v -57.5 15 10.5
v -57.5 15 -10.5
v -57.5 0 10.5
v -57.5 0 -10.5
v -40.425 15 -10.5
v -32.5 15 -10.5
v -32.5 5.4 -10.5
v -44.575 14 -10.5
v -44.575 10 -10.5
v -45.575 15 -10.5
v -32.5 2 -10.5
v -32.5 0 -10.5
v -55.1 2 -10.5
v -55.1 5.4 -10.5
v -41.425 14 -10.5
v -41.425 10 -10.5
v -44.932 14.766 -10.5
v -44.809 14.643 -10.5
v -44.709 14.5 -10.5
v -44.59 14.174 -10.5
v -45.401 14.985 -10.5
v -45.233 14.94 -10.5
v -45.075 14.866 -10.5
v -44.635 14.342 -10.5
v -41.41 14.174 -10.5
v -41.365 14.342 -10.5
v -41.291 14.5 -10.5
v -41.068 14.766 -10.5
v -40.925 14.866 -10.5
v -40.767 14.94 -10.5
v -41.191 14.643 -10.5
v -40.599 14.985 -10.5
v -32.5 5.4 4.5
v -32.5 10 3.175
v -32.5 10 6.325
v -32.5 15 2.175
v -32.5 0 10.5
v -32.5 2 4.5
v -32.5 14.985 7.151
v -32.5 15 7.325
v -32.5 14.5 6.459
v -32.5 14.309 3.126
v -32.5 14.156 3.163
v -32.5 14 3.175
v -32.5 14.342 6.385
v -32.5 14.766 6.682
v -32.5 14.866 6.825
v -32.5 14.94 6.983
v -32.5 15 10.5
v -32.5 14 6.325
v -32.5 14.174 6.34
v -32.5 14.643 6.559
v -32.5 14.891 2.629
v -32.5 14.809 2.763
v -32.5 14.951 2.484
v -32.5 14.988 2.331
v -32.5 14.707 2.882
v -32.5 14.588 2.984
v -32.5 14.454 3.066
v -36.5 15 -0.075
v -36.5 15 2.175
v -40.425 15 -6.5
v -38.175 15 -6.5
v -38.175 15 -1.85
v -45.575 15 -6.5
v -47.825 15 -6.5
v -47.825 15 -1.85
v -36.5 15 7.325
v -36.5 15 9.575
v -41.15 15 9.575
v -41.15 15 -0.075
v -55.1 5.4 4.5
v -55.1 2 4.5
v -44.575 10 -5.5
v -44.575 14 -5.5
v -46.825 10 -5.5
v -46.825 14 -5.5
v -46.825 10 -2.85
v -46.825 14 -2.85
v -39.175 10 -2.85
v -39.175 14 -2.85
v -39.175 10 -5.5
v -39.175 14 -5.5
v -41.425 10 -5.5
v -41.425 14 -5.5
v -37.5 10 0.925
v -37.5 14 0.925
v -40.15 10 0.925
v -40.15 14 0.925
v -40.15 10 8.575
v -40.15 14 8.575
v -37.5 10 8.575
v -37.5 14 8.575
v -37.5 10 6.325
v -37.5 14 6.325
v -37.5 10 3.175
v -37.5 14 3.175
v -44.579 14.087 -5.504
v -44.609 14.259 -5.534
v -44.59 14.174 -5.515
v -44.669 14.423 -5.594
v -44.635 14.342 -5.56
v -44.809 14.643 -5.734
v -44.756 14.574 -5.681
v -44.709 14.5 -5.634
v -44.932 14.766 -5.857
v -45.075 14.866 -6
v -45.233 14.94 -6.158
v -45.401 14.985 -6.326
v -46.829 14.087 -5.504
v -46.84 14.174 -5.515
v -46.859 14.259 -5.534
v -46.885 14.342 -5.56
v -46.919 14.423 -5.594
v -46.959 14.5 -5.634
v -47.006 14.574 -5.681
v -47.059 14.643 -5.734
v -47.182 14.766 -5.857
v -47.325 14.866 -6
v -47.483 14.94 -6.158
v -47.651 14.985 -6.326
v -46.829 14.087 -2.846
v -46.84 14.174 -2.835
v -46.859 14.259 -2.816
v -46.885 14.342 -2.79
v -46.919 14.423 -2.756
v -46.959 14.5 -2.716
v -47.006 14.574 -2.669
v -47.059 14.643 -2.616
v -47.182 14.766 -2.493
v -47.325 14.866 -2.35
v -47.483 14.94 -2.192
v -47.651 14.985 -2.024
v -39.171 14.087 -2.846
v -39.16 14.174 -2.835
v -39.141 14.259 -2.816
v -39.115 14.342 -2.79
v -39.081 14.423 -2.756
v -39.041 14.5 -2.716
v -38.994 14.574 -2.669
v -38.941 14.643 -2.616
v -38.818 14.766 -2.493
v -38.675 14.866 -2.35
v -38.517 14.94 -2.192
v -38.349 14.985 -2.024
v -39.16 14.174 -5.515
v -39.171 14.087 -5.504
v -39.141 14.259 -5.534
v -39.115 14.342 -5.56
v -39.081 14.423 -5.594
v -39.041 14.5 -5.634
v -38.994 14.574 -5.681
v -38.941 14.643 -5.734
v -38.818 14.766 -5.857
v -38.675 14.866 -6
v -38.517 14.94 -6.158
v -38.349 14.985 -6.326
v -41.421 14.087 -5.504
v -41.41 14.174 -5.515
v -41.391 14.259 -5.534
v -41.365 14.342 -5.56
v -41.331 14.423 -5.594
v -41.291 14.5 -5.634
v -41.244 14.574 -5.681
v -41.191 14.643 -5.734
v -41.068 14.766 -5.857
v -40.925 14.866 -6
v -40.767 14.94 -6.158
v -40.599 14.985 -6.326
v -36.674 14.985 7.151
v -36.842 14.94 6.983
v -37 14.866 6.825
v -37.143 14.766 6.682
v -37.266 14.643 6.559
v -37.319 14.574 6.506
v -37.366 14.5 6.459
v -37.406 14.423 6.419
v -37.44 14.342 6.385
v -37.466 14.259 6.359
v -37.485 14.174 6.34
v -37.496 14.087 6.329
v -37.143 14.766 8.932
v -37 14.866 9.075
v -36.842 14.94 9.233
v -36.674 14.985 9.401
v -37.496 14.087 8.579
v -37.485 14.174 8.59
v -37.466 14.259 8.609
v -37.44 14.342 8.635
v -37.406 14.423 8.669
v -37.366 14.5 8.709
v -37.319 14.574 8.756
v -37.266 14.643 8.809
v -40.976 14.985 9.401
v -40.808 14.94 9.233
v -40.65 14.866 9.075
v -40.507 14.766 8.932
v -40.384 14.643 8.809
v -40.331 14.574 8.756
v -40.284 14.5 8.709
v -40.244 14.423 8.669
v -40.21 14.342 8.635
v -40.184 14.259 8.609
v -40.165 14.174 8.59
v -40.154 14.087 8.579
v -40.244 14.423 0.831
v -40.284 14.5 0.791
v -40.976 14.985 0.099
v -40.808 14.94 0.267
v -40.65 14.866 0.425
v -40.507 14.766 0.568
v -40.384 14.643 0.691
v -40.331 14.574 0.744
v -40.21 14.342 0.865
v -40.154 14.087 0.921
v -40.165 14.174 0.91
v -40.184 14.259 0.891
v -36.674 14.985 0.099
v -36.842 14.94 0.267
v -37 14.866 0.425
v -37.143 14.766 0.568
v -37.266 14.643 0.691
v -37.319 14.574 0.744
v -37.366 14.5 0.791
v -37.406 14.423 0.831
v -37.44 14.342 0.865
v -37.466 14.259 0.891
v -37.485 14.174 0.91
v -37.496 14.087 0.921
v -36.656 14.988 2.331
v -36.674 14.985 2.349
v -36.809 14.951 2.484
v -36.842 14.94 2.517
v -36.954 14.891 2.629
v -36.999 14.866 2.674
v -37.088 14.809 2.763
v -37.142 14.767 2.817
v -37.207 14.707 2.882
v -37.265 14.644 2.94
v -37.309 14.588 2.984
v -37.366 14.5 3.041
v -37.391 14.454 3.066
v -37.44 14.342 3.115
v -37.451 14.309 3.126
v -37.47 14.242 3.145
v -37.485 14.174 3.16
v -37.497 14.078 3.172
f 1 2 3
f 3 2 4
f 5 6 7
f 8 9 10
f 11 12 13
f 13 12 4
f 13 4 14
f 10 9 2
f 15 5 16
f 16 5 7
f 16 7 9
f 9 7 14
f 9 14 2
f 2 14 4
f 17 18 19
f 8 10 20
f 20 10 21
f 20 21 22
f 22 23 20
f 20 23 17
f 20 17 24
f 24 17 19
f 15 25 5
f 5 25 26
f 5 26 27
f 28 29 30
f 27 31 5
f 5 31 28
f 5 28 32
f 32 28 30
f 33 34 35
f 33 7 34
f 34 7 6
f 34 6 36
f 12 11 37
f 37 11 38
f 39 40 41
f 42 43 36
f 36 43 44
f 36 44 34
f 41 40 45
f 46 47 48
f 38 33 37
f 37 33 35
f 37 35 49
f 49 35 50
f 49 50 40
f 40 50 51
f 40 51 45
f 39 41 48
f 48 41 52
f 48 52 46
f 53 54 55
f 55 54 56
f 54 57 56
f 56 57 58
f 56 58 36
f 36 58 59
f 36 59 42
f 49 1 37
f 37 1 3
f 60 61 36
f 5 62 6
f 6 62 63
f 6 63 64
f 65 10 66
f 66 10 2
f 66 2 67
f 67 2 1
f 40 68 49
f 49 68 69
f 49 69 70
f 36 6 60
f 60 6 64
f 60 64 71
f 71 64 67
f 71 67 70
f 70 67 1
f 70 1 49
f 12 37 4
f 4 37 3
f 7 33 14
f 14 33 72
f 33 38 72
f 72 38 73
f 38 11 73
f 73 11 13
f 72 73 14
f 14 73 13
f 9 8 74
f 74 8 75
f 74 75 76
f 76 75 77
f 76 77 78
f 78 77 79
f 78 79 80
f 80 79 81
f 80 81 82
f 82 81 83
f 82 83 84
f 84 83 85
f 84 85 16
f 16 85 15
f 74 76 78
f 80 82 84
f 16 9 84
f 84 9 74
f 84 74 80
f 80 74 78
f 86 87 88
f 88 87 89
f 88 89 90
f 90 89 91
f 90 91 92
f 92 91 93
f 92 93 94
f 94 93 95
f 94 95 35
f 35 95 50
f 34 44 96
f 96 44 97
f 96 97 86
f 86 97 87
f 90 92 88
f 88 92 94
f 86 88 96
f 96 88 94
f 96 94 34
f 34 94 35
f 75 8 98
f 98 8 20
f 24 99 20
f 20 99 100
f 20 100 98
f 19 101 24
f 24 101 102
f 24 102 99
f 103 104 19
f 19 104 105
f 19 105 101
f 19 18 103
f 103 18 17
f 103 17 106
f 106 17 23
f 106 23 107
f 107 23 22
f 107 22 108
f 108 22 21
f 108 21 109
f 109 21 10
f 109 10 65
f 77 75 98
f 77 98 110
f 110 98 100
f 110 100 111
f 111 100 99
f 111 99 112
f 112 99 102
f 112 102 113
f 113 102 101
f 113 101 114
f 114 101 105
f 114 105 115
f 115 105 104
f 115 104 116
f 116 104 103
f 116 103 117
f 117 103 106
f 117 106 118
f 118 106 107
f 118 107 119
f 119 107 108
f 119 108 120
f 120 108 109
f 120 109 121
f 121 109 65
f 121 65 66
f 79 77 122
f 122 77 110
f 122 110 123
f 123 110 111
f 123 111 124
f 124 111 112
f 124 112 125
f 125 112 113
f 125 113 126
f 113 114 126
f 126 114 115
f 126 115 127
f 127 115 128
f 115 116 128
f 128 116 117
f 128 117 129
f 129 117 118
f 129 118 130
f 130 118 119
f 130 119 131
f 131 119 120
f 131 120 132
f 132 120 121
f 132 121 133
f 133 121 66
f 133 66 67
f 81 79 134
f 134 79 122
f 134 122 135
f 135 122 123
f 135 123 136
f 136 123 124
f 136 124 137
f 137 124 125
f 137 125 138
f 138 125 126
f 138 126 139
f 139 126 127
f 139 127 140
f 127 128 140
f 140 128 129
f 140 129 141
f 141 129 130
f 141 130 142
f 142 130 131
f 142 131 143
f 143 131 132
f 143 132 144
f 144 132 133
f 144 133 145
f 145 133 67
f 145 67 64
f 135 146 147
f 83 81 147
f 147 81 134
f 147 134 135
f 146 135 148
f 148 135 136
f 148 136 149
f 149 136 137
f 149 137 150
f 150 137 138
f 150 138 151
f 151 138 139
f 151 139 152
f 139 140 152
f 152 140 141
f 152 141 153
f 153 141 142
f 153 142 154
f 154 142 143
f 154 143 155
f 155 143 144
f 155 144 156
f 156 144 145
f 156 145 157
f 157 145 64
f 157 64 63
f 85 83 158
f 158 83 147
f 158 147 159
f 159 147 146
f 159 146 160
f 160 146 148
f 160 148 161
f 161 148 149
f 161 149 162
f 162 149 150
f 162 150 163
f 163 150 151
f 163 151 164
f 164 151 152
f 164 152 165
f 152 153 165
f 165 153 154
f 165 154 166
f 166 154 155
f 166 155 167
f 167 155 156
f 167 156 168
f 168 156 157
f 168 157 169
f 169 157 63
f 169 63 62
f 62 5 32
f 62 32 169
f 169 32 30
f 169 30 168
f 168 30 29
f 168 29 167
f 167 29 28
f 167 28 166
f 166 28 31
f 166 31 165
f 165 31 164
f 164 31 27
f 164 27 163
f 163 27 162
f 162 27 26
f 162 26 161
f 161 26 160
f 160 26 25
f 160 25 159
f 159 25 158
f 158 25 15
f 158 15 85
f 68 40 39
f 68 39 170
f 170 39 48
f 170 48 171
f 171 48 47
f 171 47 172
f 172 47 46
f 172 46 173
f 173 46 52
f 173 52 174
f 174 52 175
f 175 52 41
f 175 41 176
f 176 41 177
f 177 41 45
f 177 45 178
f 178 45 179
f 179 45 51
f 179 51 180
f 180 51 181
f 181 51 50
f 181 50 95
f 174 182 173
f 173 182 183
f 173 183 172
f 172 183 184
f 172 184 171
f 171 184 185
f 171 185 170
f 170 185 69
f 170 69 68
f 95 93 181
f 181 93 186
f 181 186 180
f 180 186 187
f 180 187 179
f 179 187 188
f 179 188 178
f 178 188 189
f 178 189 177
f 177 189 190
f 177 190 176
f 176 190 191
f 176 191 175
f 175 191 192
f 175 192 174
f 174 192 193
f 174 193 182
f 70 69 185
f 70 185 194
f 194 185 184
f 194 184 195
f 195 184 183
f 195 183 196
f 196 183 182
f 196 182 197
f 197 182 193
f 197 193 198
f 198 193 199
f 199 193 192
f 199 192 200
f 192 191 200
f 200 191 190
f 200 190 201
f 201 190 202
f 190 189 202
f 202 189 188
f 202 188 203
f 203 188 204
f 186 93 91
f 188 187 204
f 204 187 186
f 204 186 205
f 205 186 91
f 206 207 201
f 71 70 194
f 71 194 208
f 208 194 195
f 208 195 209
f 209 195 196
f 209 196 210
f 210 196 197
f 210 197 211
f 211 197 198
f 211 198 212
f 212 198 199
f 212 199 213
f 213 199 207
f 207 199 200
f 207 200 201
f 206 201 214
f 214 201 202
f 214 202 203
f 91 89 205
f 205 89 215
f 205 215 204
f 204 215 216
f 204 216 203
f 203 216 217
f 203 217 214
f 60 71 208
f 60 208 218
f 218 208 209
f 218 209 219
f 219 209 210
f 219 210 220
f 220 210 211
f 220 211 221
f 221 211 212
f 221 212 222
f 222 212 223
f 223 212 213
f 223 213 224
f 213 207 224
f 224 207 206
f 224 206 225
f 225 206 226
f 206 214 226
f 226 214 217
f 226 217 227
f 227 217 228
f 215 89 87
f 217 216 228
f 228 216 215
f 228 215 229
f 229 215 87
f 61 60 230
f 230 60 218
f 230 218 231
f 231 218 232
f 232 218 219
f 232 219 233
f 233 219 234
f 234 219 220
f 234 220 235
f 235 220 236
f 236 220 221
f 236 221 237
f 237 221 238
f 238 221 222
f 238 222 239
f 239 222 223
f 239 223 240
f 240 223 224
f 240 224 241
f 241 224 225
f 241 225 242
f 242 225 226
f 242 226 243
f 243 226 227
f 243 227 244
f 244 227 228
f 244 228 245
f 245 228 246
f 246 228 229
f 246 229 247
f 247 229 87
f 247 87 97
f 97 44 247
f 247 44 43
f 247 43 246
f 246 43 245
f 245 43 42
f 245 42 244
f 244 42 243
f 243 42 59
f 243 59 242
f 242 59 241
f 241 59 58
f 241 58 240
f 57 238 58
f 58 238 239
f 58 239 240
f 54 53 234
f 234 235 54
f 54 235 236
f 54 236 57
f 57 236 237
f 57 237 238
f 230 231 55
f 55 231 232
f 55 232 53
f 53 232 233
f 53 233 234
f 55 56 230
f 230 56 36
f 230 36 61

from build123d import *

# Parameters (mm, degrees)
SKETCH1_W           = 25
SKETCH1_H           = 21
BOSS_EXTRUDE1_DEPTH = 15
SKETCH2_W           = 15
SKETCH2_H           = 3.4
CUT_EXTRUDE1_DEPTH  = 22.6
CUT_EXTRUDE2_DEPTH  = 5
FILLET1_R           = 1


with BuildPart() as part:
    # Sketch1 → Boss-Extrude1 (new body)
    with BuildSketch(Plane(origin=(0, 0, 0), x_dir=(1, 0, 0), z_dir=(0, 1, 0))):
        Rectangle(SKETCH1_W, SKETCH1_H)
    extrude(amount=BOSS_EXTRUDE1_DEPTH)

    # Sketch2 → Cut-Extrude1 (cut)
    with BuildSketch(Plane.ZY.offset(12.5)):
        with Locations((-3, 3.7)):
            Rectangle(SKETCH2_W, SKETCH2_H)
    extrude(amount=-CUT_EXTRUDE1_DEPTH, mode=Mode.SUBTRACT)

    # Sketch3 → Cut-Extrude2 (cut)
    with BuildSketch(Plane(origin=(0, 15, 0), x_dir=(1, 0, 0), z_dir=(0, 1, 0))):
        Polygon((-4.85, -0.925), (-4.85, -8.575), (-7.5, -8.575), (-7.5, -6.325), (-12.5, -6.325), (-12.5, -3.175), (-7.5, -3.175), (-7.5, -0.925), align=None)
        Polygon((-3.575, 10.5), (-3.575, 5.5), (-5.825, 5.5), (-5.825, 2.85), (1.825, 2.85), (1.825, 5.5), (-0.425, 5.5), (-0.425, 10.5), align=None)
    extrude(amount=-CUT_EXTRUDE2_DEPTH, mode=Mode.SUBTRACT)

    # Fillet1
    fillet1_edges = [part.edges().sort_by_distance(p)[0] for p in [
        (-6.175, 15, 0.925),
        (-7.5, 15, 2.05),
        (-10, 15, 3.175),
        (-10, 15, 6.325),
        (-7.5, 15, 7.45),
        (-6.175, 15, 8.575),
        (-4.85, 15, 4.75),
        (-3.575, 15, -8),
        (-4.7, 15, -5.5),
        (-5.825, 15, -4.175),
        (-2, 15, -2.85),
        (1.825, 15, -4.175),
        (0.7, 15, -5.5),
        (-0.425, 15, -8),
    ]]
    fillet(fillet1_edges, radius=FILLET1_R)


with BuildPart() as body_2:
    # Mirror2: mirrored copy
    add(part.part.mirror(Plane.ZY.offset(22.5)))


solid = body_2.part
